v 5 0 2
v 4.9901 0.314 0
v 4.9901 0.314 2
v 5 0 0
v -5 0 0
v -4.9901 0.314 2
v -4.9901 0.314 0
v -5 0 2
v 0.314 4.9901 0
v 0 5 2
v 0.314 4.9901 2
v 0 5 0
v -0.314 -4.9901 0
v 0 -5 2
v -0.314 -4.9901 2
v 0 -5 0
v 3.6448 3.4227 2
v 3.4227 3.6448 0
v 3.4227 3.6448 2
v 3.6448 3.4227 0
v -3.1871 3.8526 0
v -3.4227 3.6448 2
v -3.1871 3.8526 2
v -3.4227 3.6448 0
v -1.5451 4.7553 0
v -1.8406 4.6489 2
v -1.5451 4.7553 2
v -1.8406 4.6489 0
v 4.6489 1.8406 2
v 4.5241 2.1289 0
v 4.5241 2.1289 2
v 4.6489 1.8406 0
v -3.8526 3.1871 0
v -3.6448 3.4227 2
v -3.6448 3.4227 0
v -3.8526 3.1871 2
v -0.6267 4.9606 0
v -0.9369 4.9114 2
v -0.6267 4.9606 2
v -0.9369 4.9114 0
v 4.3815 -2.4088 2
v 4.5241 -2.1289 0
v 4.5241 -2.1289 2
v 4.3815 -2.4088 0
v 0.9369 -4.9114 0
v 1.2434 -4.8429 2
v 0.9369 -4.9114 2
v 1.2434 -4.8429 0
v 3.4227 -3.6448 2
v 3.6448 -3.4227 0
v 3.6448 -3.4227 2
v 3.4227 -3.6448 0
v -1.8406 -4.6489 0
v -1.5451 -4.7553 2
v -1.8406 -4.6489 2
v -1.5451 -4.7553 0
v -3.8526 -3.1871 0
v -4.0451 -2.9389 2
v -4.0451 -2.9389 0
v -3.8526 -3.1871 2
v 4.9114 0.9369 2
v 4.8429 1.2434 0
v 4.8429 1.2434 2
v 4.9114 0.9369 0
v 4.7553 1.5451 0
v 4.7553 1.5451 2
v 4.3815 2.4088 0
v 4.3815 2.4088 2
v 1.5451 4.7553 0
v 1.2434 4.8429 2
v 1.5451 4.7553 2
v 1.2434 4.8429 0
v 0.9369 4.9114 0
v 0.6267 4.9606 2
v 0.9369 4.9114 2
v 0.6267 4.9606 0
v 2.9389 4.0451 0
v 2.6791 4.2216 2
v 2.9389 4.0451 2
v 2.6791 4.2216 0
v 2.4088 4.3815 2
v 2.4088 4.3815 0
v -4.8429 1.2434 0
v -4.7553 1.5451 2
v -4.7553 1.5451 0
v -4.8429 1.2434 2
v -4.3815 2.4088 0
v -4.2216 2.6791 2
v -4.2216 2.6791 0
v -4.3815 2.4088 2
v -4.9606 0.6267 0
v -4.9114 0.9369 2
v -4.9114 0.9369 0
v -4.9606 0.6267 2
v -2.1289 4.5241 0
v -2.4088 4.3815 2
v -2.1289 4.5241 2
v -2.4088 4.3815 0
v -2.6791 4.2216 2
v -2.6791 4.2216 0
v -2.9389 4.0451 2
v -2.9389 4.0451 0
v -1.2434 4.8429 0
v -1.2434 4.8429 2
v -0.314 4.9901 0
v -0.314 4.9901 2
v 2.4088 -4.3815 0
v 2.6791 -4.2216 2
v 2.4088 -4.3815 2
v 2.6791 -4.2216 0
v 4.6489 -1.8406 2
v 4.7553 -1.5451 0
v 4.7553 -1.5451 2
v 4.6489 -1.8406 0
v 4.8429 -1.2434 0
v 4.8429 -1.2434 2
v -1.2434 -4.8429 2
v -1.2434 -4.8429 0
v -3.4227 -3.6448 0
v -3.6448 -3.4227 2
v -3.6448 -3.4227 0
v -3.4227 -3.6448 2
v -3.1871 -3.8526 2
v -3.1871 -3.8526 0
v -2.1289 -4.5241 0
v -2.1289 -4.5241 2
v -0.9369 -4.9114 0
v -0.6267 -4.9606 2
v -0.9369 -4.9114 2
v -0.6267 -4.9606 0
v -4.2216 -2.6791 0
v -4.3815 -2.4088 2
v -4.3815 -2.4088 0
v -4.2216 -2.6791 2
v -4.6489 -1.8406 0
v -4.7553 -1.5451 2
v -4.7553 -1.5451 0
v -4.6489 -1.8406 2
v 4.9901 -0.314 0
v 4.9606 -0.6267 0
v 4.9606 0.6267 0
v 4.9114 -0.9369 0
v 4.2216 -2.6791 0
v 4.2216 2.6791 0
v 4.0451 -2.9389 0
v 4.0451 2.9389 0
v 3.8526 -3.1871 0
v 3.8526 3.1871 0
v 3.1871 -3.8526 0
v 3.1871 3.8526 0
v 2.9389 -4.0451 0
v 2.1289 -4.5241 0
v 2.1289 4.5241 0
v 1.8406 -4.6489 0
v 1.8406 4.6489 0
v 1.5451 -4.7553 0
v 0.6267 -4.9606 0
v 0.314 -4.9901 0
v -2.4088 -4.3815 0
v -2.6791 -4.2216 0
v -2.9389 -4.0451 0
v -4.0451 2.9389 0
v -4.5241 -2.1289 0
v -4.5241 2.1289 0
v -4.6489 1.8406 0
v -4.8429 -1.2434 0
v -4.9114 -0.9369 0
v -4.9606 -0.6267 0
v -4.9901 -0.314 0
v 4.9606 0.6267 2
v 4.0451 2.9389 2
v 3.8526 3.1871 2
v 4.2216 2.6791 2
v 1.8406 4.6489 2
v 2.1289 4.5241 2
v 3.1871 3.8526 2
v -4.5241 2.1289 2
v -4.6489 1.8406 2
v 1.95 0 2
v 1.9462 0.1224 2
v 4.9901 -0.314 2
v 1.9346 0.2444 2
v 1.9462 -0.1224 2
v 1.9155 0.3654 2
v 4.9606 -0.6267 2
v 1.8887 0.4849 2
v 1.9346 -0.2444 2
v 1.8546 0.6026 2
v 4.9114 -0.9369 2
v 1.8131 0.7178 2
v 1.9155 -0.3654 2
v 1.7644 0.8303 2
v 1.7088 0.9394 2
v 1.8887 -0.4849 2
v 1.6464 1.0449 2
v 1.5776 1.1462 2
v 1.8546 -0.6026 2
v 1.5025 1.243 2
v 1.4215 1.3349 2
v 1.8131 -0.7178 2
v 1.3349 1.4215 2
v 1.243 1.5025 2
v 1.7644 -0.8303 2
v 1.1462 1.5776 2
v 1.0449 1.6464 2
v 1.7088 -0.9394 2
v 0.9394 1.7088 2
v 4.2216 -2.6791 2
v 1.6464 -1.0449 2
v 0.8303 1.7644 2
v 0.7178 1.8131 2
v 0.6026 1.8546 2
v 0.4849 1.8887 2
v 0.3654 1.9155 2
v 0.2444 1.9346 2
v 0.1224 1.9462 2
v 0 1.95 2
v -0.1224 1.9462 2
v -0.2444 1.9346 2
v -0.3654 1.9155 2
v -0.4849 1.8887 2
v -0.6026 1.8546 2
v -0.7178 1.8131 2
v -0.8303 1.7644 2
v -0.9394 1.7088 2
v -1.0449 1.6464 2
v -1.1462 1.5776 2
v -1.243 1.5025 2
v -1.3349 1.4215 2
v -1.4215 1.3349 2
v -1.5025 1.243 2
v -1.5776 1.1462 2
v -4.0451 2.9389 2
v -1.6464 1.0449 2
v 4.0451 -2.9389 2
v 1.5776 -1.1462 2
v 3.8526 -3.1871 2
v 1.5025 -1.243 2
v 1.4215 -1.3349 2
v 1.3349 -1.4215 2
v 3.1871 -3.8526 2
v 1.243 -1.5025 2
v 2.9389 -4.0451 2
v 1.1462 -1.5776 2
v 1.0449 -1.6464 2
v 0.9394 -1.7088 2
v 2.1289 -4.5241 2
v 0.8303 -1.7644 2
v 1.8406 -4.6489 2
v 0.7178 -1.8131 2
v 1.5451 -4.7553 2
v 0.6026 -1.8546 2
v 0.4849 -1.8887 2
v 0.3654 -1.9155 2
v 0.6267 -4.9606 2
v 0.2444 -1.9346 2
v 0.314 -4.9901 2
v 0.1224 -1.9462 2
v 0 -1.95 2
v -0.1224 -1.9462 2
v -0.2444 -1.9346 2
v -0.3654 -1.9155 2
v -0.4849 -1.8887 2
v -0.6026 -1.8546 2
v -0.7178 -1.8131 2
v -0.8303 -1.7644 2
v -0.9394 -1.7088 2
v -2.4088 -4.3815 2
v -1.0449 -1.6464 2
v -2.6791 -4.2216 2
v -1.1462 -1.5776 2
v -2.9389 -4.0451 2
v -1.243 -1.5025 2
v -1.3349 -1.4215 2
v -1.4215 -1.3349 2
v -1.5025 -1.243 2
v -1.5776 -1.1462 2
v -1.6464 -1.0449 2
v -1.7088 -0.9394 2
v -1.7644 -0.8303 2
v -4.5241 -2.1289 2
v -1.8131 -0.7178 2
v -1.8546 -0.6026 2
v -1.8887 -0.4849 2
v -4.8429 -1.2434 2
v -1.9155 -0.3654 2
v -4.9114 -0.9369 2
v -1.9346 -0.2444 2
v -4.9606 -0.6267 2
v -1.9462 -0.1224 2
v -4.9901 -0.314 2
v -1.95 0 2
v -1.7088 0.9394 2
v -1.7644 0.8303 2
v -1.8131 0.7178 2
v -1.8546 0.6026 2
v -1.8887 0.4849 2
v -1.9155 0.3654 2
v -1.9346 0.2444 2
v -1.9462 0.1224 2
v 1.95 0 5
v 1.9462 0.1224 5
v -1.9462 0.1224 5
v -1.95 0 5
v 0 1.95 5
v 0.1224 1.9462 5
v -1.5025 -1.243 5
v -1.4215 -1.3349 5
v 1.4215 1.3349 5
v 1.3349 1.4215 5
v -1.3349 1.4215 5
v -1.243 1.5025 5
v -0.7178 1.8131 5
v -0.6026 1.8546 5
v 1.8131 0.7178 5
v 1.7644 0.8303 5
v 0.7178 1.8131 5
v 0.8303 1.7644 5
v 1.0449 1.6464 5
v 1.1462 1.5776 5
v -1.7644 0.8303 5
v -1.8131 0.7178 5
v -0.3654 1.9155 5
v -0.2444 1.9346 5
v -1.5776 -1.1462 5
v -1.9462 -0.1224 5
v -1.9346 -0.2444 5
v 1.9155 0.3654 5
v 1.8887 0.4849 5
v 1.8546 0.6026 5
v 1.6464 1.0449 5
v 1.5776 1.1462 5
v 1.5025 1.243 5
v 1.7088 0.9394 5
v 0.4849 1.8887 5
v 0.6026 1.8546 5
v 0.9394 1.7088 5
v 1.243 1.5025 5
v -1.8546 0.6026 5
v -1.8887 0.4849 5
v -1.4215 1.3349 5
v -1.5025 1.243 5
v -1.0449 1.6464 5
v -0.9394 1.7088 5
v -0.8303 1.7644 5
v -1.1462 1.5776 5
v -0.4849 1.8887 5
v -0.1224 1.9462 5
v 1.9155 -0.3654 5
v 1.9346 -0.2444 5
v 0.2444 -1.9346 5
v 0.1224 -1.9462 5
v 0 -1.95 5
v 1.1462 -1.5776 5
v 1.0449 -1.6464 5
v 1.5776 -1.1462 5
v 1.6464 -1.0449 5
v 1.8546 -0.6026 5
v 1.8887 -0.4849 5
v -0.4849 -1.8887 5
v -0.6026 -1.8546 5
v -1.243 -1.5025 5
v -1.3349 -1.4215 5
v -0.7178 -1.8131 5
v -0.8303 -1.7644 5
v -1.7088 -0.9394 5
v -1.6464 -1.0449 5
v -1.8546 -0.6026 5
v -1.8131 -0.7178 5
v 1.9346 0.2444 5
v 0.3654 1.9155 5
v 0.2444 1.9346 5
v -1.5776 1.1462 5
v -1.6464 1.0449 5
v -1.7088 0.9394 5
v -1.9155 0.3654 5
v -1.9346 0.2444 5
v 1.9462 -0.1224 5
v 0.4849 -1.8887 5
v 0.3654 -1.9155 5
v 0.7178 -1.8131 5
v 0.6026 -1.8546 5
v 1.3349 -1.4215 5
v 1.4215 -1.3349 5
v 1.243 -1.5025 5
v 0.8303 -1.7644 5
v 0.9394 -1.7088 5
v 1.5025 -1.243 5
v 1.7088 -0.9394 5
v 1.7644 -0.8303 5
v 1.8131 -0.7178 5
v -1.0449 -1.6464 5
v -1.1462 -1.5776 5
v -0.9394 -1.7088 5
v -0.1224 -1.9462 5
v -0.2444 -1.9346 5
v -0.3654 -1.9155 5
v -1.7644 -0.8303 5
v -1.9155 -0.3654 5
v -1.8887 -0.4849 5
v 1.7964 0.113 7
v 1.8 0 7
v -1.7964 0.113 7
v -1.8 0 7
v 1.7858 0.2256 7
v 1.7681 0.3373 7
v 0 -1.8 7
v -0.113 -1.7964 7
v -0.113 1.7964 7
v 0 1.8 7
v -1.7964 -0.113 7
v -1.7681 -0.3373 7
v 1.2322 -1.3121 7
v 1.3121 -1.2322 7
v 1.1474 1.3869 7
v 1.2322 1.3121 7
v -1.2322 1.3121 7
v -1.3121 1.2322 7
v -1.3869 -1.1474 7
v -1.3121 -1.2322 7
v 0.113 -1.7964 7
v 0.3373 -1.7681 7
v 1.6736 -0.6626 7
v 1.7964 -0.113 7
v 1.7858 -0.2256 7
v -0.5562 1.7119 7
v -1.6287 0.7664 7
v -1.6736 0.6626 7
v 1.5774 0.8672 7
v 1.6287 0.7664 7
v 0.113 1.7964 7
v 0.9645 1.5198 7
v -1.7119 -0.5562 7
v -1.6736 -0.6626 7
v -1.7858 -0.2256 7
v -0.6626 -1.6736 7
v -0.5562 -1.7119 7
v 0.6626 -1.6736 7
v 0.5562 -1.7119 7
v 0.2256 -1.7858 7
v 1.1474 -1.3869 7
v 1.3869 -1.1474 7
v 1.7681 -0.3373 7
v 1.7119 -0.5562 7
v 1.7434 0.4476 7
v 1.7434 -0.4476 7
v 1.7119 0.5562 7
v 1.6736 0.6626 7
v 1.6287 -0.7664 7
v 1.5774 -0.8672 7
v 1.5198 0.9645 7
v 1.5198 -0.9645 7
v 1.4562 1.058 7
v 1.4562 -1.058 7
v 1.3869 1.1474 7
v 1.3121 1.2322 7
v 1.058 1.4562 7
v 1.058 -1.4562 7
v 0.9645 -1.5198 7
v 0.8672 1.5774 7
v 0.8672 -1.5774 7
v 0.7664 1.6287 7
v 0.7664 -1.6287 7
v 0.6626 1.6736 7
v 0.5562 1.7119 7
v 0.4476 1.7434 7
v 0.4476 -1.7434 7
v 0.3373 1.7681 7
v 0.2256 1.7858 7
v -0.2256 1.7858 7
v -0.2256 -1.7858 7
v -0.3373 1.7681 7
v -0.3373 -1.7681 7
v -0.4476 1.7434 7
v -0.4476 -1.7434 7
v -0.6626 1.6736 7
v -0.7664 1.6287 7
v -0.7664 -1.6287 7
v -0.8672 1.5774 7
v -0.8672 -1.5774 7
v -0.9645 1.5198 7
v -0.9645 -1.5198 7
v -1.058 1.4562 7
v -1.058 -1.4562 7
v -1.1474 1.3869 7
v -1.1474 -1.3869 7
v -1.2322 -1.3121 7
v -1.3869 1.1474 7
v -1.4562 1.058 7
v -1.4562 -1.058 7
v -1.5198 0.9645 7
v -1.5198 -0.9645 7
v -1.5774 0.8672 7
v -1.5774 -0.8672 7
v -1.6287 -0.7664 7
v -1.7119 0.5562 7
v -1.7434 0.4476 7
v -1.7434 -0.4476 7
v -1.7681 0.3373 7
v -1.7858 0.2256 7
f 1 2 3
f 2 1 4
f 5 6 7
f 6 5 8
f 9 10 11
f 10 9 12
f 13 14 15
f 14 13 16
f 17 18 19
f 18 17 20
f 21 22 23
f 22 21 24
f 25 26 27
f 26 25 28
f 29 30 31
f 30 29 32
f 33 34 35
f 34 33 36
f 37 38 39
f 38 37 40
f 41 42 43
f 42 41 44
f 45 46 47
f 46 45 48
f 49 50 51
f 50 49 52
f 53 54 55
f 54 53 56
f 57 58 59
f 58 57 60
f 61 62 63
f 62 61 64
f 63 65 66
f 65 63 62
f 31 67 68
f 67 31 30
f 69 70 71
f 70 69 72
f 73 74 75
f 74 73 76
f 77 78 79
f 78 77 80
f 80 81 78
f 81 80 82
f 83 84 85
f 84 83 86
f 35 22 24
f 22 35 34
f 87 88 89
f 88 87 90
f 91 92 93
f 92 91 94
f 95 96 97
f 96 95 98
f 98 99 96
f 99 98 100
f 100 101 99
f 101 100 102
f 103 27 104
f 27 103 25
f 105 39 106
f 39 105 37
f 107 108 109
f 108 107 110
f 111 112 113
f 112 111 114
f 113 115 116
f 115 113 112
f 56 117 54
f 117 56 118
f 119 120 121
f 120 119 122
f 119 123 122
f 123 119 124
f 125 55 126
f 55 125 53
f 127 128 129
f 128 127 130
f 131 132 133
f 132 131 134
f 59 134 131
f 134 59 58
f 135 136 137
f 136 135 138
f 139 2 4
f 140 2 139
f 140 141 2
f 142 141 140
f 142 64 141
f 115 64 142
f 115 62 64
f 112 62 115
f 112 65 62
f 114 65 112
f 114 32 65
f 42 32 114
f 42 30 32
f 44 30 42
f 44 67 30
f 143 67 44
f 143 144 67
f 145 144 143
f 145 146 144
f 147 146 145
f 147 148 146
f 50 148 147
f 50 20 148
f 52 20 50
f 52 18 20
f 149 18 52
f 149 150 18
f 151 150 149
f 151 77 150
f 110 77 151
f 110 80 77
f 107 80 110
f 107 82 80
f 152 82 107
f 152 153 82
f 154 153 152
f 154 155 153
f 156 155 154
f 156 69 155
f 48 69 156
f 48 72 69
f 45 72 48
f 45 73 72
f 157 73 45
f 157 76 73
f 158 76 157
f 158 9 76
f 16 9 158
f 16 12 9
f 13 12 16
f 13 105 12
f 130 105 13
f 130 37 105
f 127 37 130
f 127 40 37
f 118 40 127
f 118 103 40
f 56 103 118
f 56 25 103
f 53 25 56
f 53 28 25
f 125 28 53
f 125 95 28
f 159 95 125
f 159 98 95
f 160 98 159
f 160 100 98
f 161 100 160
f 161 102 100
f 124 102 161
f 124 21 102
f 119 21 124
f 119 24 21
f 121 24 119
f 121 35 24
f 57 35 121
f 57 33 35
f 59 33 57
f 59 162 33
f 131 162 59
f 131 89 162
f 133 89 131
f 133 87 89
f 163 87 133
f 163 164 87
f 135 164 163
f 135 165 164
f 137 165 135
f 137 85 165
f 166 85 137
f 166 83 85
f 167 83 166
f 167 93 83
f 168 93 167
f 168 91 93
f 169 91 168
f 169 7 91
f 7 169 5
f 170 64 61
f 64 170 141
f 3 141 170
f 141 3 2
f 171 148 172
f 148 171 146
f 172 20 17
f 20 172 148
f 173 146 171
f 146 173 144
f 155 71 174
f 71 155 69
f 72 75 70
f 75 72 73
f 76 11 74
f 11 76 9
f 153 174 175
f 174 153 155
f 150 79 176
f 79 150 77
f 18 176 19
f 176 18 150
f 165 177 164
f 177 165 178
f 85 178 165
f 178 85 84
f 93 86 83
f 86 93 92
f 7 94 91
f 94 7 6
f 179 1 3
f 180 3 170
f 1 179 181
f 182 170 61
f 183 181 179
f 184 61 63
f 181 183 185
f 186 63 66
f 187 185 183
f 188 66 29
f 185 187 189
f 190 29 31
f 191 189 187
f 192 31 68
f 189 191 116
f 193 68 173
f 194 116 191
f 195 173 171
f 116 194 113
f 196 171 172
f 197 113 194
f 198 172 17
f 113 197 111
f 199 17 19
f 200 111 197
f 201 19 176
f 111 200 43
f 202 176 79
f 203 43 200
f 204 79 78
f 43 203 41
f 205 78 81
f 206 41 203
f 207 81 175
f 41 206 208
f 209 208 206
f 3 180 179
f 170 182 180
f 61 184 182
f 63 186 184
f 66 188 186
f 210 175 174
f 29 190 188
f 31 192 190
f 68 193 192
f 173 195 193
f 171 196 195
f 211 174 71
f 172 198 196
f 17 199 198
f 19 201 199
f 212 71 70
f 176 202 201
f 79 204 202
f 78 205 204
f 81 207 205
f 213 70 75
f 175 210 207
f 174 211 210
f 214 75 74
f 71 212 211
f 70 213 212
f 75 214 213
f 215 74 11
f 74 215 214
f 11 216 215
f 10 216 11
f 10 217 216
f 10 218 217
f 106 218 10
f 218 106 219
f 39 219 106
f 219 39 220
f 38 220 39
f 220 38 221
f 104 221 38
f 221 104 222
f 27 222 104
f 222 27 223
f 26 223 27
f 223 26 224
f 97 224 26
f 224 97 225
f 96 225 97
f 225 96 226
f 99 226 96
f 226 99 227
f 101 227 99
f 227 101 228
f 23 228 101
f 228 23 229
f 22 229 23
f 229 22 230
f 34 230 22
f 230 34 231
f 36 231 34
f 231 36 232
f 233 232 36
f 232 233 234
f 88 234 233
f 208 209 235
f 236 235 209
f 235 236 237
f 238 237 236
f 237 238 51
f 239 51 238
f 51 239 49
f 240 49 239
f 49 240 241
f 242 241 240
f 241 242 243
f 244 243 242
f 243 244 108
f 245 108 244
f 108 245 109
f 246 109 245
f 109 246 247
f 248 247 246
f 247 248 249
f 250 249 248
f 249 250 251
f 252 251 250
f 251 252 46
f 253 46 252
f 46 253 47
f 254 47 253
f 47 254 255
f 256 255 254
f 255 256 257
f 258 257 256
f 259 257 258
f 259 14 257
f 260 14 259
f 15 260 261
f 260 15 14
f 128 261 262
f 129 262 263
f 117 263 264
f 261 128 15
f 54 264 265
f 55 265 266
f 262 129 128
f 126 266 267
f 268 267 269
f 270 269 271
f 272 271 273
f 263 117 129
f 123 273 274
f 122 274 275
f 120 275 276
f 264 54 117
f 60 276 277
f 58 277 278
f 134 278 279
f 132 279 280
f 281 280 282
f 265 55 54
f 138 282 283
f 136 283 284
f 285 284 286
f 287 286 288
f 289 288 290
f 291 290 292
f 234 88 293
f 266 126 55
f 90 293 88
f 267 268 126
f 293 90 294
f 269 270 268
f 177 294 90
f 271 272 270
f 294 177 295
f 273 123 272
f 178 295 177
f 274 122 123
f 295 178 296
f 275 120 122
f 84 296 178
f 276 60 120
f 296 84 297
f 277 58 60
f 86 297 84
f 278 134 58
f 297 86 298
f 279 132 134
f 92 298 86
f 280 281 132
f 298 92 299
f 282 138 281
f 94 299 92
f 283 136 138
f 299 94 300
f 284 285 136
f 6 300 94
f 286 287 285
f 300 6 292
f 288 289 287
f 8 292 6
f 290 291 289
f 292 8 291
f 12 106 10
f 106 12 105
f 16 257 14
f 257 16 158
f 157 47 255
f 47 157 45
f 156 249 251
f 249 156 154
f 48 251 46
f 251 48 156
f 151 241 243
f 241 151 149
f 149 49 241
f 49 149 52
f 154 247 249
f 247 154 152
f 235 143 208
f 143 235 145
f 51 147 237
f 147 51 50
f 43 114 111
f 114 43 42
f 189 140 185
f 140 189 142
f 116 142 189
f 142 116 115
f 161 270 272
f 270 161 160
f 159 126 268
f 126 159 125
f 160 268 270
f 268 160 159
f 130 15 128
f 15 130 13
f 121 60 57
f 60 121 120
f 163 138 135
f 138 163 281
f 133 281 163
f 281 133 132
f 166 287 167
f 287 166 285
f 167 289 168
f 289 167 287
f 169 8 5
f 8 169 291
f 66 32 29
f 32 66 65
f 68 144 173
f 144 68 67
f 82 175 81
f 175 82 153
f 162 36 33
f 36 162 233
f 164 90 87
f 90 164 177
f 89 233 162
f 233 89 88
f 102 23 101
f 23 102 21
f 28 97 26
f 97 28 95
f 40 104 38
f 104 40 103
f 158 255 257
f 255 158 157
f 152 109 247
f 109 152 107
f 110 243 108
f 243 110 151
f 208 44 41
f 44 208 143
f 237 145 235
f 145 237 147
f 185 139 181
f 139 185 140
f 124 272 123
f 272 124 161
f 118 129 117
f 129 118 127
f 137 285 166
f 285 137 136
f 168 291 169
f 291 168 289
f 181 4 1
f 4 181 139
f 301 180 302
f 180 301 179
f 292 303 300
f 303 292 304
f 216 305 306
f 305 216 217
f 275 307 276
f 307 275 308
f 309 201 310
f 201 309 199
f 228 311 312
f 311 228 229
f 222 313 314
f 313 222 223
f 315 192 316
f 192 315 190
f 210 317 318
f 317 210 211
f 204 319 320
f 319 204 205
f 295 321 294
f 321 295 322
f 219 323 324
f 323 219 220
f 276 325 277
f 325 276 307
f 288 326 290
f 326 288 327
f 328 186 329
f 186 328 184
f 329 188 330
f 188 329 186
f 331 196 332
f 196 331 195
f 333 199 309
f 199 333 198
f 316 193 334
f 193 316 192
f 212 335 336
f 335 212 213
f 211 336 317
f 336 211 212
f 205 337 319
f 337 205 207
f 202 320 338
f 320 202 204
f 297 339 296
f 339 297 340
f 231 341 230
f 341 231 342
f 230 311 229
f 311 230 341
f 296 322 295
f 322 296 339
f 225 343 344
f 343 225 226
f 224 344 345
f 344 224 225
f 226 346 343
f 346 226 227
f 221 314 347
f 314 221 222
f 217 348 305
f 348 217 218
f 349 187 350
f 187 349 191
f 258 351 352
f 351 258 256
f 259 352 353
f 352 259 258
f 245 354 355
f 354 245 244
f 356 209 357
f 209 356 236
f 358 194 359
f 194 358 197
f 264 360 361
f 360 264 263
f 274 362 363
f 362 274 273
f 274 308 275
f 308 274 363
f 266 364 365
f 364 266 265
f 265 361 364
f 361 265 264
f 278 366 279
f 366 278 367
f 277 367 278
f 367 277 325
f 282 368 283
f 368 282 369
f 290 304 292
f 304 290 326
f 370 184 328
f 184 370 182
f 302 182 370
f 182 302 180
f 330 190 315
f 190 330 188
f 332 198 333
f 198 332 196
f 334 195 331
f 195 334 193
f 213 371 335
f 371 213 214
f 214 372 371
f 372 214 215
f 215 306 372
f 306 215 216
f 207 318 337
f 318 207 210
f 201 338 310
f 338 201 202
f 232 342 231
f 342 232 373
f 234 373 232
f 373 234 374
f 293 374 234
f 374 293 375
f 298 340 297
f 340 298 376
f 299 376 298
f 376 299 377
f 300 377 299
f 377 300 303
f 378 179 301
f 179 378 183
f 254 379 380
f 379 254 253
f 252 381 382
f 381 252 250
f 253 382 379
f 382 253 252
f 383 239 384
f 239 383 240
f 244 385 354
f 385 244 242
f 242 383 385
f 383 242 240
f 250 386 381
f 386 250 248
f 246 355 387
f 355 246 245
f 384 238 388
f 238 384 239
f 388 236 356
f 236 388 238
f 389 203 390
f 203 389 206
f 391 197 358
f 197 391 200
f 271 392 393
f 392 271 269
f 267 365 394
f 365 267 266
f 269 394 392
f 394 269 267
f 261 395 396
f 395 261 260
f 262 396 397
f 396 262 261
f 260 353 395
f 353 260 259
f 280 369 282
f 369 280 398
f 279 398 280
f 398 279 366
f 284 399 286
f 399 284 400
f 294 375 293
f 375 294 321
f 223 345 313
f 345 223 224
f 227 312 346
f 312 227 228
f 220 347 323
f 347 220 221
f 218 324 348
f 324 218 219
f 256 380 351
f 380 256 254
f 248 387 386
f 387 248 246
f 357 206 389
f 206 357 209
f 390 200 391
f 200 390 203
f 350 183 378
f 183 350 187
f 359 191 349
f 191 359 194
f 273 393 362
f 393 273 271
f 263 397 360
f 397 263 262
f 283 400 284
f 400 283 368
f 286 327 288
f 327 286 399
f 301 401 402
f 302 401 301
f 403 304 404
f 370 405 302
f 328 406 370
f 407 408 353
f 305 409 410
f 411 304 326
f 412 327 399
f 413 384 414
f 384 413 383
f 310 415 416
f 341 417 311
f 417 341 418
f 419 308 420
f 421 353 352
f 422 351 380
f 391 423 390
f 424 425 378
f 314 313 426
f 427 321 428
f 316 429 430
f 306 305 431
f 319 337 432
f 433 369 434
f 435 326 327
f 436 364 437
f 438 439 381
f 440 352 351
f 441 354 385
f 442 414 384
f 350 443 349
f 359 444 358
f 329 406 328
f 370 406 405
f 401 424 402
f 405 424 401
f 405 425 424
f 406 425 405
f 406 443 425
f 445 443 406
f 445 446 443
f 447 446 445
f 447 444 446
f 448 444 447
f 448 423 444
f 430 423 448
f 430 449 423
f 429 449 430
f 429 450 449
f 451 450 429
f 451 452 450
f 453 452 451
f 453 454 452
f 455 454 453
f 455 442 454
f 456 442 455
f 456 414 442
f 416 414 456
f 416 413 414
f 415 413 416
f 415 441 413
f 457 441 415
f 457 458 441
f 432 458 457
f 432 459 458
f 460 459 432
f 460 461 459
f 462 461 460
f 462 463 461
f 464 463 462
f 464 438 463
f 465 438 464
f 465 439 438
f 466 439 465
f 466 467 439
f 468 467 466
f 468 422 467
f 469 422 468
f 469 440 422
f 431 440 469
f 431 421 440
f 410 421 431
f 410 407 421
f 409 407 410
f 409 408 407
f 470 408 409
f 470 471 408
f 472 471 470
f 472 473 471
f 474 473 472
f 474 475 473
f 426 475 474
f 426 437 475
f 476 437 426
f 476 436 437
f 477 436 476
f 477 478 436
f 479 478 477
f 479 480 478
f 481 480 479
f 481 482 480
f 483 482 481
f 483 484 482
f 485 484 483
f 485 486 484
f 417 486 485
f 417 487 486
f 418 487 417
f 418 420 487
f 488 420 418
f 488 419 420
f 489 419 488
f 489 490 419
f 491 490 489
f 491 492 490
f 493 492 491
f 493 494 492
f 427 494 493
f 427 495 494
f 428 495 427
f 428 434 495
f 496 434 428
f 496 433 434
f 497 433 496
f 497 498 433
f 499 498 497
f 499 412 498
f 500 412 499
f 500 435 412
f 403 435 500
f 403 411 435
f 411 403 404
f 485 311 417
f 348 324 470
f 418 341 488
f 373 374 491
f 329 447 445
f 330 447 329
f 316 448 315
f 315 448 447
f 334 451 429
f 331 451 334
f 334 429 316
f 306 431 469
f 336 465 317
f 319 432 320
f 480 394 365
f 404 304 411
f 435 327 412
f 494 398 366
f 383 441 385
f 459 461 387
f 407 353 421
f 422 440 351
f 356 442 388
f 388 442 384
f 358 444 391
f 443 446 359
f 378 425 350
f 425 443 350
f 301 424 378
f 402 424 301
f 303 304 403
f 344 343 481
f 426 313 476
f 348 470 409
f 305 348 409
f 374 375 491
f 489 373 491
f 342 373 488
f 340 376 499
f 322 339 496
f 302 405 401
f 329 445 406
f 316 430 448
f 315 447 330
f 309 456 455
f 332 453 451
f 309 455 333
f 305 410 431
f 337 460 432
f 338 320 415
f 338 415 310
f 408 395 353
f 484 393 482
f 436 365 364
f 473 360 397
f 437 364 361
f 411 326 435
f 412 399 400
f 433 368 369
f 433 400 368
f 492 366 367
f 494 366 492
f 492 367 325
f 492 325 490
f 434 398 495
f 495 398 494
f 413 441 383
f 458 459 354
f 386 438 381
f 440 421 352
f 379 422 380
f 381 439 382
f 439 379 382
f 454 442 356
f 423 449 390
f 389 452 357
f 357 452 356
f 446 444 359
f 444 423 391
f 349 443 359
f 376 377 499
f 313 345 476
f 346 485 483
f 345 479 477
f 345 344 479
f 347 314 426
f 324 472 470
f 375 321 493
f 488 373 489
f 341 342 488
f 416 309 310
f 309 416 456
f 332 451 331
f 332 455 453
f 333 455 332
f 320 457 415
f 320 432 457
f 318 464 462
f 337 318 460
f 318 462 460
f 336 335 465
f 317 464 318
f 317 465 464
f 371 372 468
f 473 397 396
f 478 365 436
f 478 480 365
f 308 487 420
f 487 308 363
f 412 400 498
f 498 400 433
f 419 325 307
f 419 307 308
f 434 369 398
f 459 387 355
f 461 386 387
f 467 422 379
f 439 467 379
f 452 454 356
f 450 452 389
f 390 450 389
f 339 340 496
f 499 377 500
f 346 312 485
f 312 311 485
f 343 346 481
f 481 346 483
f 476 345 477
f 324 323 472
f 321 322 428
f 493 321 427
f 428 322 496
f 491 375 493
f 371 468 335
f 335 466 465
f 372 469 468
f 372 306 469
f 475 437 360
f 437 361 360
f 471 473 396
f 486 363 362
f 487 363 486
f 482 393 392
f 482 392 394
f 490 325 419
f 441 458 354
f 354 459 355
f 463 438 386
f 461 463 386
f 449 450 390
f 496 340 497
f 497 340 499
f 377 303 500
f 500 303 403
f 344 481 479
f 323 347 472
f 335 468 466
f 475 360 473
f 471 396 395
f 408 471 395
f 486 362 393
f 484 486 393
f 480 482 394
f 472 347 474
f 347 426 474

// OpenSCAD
// lock
FN=100;
union() {
  cylinder(h=2, r=5, center=false, $fn=FN);
  cylinder(h=5, r=1.95, center=false, $fn=FN);
  translate([0,0,5]) cylinder(h=2, r1=1.95, r2=1.8, center=false, $fn=FN);
}
